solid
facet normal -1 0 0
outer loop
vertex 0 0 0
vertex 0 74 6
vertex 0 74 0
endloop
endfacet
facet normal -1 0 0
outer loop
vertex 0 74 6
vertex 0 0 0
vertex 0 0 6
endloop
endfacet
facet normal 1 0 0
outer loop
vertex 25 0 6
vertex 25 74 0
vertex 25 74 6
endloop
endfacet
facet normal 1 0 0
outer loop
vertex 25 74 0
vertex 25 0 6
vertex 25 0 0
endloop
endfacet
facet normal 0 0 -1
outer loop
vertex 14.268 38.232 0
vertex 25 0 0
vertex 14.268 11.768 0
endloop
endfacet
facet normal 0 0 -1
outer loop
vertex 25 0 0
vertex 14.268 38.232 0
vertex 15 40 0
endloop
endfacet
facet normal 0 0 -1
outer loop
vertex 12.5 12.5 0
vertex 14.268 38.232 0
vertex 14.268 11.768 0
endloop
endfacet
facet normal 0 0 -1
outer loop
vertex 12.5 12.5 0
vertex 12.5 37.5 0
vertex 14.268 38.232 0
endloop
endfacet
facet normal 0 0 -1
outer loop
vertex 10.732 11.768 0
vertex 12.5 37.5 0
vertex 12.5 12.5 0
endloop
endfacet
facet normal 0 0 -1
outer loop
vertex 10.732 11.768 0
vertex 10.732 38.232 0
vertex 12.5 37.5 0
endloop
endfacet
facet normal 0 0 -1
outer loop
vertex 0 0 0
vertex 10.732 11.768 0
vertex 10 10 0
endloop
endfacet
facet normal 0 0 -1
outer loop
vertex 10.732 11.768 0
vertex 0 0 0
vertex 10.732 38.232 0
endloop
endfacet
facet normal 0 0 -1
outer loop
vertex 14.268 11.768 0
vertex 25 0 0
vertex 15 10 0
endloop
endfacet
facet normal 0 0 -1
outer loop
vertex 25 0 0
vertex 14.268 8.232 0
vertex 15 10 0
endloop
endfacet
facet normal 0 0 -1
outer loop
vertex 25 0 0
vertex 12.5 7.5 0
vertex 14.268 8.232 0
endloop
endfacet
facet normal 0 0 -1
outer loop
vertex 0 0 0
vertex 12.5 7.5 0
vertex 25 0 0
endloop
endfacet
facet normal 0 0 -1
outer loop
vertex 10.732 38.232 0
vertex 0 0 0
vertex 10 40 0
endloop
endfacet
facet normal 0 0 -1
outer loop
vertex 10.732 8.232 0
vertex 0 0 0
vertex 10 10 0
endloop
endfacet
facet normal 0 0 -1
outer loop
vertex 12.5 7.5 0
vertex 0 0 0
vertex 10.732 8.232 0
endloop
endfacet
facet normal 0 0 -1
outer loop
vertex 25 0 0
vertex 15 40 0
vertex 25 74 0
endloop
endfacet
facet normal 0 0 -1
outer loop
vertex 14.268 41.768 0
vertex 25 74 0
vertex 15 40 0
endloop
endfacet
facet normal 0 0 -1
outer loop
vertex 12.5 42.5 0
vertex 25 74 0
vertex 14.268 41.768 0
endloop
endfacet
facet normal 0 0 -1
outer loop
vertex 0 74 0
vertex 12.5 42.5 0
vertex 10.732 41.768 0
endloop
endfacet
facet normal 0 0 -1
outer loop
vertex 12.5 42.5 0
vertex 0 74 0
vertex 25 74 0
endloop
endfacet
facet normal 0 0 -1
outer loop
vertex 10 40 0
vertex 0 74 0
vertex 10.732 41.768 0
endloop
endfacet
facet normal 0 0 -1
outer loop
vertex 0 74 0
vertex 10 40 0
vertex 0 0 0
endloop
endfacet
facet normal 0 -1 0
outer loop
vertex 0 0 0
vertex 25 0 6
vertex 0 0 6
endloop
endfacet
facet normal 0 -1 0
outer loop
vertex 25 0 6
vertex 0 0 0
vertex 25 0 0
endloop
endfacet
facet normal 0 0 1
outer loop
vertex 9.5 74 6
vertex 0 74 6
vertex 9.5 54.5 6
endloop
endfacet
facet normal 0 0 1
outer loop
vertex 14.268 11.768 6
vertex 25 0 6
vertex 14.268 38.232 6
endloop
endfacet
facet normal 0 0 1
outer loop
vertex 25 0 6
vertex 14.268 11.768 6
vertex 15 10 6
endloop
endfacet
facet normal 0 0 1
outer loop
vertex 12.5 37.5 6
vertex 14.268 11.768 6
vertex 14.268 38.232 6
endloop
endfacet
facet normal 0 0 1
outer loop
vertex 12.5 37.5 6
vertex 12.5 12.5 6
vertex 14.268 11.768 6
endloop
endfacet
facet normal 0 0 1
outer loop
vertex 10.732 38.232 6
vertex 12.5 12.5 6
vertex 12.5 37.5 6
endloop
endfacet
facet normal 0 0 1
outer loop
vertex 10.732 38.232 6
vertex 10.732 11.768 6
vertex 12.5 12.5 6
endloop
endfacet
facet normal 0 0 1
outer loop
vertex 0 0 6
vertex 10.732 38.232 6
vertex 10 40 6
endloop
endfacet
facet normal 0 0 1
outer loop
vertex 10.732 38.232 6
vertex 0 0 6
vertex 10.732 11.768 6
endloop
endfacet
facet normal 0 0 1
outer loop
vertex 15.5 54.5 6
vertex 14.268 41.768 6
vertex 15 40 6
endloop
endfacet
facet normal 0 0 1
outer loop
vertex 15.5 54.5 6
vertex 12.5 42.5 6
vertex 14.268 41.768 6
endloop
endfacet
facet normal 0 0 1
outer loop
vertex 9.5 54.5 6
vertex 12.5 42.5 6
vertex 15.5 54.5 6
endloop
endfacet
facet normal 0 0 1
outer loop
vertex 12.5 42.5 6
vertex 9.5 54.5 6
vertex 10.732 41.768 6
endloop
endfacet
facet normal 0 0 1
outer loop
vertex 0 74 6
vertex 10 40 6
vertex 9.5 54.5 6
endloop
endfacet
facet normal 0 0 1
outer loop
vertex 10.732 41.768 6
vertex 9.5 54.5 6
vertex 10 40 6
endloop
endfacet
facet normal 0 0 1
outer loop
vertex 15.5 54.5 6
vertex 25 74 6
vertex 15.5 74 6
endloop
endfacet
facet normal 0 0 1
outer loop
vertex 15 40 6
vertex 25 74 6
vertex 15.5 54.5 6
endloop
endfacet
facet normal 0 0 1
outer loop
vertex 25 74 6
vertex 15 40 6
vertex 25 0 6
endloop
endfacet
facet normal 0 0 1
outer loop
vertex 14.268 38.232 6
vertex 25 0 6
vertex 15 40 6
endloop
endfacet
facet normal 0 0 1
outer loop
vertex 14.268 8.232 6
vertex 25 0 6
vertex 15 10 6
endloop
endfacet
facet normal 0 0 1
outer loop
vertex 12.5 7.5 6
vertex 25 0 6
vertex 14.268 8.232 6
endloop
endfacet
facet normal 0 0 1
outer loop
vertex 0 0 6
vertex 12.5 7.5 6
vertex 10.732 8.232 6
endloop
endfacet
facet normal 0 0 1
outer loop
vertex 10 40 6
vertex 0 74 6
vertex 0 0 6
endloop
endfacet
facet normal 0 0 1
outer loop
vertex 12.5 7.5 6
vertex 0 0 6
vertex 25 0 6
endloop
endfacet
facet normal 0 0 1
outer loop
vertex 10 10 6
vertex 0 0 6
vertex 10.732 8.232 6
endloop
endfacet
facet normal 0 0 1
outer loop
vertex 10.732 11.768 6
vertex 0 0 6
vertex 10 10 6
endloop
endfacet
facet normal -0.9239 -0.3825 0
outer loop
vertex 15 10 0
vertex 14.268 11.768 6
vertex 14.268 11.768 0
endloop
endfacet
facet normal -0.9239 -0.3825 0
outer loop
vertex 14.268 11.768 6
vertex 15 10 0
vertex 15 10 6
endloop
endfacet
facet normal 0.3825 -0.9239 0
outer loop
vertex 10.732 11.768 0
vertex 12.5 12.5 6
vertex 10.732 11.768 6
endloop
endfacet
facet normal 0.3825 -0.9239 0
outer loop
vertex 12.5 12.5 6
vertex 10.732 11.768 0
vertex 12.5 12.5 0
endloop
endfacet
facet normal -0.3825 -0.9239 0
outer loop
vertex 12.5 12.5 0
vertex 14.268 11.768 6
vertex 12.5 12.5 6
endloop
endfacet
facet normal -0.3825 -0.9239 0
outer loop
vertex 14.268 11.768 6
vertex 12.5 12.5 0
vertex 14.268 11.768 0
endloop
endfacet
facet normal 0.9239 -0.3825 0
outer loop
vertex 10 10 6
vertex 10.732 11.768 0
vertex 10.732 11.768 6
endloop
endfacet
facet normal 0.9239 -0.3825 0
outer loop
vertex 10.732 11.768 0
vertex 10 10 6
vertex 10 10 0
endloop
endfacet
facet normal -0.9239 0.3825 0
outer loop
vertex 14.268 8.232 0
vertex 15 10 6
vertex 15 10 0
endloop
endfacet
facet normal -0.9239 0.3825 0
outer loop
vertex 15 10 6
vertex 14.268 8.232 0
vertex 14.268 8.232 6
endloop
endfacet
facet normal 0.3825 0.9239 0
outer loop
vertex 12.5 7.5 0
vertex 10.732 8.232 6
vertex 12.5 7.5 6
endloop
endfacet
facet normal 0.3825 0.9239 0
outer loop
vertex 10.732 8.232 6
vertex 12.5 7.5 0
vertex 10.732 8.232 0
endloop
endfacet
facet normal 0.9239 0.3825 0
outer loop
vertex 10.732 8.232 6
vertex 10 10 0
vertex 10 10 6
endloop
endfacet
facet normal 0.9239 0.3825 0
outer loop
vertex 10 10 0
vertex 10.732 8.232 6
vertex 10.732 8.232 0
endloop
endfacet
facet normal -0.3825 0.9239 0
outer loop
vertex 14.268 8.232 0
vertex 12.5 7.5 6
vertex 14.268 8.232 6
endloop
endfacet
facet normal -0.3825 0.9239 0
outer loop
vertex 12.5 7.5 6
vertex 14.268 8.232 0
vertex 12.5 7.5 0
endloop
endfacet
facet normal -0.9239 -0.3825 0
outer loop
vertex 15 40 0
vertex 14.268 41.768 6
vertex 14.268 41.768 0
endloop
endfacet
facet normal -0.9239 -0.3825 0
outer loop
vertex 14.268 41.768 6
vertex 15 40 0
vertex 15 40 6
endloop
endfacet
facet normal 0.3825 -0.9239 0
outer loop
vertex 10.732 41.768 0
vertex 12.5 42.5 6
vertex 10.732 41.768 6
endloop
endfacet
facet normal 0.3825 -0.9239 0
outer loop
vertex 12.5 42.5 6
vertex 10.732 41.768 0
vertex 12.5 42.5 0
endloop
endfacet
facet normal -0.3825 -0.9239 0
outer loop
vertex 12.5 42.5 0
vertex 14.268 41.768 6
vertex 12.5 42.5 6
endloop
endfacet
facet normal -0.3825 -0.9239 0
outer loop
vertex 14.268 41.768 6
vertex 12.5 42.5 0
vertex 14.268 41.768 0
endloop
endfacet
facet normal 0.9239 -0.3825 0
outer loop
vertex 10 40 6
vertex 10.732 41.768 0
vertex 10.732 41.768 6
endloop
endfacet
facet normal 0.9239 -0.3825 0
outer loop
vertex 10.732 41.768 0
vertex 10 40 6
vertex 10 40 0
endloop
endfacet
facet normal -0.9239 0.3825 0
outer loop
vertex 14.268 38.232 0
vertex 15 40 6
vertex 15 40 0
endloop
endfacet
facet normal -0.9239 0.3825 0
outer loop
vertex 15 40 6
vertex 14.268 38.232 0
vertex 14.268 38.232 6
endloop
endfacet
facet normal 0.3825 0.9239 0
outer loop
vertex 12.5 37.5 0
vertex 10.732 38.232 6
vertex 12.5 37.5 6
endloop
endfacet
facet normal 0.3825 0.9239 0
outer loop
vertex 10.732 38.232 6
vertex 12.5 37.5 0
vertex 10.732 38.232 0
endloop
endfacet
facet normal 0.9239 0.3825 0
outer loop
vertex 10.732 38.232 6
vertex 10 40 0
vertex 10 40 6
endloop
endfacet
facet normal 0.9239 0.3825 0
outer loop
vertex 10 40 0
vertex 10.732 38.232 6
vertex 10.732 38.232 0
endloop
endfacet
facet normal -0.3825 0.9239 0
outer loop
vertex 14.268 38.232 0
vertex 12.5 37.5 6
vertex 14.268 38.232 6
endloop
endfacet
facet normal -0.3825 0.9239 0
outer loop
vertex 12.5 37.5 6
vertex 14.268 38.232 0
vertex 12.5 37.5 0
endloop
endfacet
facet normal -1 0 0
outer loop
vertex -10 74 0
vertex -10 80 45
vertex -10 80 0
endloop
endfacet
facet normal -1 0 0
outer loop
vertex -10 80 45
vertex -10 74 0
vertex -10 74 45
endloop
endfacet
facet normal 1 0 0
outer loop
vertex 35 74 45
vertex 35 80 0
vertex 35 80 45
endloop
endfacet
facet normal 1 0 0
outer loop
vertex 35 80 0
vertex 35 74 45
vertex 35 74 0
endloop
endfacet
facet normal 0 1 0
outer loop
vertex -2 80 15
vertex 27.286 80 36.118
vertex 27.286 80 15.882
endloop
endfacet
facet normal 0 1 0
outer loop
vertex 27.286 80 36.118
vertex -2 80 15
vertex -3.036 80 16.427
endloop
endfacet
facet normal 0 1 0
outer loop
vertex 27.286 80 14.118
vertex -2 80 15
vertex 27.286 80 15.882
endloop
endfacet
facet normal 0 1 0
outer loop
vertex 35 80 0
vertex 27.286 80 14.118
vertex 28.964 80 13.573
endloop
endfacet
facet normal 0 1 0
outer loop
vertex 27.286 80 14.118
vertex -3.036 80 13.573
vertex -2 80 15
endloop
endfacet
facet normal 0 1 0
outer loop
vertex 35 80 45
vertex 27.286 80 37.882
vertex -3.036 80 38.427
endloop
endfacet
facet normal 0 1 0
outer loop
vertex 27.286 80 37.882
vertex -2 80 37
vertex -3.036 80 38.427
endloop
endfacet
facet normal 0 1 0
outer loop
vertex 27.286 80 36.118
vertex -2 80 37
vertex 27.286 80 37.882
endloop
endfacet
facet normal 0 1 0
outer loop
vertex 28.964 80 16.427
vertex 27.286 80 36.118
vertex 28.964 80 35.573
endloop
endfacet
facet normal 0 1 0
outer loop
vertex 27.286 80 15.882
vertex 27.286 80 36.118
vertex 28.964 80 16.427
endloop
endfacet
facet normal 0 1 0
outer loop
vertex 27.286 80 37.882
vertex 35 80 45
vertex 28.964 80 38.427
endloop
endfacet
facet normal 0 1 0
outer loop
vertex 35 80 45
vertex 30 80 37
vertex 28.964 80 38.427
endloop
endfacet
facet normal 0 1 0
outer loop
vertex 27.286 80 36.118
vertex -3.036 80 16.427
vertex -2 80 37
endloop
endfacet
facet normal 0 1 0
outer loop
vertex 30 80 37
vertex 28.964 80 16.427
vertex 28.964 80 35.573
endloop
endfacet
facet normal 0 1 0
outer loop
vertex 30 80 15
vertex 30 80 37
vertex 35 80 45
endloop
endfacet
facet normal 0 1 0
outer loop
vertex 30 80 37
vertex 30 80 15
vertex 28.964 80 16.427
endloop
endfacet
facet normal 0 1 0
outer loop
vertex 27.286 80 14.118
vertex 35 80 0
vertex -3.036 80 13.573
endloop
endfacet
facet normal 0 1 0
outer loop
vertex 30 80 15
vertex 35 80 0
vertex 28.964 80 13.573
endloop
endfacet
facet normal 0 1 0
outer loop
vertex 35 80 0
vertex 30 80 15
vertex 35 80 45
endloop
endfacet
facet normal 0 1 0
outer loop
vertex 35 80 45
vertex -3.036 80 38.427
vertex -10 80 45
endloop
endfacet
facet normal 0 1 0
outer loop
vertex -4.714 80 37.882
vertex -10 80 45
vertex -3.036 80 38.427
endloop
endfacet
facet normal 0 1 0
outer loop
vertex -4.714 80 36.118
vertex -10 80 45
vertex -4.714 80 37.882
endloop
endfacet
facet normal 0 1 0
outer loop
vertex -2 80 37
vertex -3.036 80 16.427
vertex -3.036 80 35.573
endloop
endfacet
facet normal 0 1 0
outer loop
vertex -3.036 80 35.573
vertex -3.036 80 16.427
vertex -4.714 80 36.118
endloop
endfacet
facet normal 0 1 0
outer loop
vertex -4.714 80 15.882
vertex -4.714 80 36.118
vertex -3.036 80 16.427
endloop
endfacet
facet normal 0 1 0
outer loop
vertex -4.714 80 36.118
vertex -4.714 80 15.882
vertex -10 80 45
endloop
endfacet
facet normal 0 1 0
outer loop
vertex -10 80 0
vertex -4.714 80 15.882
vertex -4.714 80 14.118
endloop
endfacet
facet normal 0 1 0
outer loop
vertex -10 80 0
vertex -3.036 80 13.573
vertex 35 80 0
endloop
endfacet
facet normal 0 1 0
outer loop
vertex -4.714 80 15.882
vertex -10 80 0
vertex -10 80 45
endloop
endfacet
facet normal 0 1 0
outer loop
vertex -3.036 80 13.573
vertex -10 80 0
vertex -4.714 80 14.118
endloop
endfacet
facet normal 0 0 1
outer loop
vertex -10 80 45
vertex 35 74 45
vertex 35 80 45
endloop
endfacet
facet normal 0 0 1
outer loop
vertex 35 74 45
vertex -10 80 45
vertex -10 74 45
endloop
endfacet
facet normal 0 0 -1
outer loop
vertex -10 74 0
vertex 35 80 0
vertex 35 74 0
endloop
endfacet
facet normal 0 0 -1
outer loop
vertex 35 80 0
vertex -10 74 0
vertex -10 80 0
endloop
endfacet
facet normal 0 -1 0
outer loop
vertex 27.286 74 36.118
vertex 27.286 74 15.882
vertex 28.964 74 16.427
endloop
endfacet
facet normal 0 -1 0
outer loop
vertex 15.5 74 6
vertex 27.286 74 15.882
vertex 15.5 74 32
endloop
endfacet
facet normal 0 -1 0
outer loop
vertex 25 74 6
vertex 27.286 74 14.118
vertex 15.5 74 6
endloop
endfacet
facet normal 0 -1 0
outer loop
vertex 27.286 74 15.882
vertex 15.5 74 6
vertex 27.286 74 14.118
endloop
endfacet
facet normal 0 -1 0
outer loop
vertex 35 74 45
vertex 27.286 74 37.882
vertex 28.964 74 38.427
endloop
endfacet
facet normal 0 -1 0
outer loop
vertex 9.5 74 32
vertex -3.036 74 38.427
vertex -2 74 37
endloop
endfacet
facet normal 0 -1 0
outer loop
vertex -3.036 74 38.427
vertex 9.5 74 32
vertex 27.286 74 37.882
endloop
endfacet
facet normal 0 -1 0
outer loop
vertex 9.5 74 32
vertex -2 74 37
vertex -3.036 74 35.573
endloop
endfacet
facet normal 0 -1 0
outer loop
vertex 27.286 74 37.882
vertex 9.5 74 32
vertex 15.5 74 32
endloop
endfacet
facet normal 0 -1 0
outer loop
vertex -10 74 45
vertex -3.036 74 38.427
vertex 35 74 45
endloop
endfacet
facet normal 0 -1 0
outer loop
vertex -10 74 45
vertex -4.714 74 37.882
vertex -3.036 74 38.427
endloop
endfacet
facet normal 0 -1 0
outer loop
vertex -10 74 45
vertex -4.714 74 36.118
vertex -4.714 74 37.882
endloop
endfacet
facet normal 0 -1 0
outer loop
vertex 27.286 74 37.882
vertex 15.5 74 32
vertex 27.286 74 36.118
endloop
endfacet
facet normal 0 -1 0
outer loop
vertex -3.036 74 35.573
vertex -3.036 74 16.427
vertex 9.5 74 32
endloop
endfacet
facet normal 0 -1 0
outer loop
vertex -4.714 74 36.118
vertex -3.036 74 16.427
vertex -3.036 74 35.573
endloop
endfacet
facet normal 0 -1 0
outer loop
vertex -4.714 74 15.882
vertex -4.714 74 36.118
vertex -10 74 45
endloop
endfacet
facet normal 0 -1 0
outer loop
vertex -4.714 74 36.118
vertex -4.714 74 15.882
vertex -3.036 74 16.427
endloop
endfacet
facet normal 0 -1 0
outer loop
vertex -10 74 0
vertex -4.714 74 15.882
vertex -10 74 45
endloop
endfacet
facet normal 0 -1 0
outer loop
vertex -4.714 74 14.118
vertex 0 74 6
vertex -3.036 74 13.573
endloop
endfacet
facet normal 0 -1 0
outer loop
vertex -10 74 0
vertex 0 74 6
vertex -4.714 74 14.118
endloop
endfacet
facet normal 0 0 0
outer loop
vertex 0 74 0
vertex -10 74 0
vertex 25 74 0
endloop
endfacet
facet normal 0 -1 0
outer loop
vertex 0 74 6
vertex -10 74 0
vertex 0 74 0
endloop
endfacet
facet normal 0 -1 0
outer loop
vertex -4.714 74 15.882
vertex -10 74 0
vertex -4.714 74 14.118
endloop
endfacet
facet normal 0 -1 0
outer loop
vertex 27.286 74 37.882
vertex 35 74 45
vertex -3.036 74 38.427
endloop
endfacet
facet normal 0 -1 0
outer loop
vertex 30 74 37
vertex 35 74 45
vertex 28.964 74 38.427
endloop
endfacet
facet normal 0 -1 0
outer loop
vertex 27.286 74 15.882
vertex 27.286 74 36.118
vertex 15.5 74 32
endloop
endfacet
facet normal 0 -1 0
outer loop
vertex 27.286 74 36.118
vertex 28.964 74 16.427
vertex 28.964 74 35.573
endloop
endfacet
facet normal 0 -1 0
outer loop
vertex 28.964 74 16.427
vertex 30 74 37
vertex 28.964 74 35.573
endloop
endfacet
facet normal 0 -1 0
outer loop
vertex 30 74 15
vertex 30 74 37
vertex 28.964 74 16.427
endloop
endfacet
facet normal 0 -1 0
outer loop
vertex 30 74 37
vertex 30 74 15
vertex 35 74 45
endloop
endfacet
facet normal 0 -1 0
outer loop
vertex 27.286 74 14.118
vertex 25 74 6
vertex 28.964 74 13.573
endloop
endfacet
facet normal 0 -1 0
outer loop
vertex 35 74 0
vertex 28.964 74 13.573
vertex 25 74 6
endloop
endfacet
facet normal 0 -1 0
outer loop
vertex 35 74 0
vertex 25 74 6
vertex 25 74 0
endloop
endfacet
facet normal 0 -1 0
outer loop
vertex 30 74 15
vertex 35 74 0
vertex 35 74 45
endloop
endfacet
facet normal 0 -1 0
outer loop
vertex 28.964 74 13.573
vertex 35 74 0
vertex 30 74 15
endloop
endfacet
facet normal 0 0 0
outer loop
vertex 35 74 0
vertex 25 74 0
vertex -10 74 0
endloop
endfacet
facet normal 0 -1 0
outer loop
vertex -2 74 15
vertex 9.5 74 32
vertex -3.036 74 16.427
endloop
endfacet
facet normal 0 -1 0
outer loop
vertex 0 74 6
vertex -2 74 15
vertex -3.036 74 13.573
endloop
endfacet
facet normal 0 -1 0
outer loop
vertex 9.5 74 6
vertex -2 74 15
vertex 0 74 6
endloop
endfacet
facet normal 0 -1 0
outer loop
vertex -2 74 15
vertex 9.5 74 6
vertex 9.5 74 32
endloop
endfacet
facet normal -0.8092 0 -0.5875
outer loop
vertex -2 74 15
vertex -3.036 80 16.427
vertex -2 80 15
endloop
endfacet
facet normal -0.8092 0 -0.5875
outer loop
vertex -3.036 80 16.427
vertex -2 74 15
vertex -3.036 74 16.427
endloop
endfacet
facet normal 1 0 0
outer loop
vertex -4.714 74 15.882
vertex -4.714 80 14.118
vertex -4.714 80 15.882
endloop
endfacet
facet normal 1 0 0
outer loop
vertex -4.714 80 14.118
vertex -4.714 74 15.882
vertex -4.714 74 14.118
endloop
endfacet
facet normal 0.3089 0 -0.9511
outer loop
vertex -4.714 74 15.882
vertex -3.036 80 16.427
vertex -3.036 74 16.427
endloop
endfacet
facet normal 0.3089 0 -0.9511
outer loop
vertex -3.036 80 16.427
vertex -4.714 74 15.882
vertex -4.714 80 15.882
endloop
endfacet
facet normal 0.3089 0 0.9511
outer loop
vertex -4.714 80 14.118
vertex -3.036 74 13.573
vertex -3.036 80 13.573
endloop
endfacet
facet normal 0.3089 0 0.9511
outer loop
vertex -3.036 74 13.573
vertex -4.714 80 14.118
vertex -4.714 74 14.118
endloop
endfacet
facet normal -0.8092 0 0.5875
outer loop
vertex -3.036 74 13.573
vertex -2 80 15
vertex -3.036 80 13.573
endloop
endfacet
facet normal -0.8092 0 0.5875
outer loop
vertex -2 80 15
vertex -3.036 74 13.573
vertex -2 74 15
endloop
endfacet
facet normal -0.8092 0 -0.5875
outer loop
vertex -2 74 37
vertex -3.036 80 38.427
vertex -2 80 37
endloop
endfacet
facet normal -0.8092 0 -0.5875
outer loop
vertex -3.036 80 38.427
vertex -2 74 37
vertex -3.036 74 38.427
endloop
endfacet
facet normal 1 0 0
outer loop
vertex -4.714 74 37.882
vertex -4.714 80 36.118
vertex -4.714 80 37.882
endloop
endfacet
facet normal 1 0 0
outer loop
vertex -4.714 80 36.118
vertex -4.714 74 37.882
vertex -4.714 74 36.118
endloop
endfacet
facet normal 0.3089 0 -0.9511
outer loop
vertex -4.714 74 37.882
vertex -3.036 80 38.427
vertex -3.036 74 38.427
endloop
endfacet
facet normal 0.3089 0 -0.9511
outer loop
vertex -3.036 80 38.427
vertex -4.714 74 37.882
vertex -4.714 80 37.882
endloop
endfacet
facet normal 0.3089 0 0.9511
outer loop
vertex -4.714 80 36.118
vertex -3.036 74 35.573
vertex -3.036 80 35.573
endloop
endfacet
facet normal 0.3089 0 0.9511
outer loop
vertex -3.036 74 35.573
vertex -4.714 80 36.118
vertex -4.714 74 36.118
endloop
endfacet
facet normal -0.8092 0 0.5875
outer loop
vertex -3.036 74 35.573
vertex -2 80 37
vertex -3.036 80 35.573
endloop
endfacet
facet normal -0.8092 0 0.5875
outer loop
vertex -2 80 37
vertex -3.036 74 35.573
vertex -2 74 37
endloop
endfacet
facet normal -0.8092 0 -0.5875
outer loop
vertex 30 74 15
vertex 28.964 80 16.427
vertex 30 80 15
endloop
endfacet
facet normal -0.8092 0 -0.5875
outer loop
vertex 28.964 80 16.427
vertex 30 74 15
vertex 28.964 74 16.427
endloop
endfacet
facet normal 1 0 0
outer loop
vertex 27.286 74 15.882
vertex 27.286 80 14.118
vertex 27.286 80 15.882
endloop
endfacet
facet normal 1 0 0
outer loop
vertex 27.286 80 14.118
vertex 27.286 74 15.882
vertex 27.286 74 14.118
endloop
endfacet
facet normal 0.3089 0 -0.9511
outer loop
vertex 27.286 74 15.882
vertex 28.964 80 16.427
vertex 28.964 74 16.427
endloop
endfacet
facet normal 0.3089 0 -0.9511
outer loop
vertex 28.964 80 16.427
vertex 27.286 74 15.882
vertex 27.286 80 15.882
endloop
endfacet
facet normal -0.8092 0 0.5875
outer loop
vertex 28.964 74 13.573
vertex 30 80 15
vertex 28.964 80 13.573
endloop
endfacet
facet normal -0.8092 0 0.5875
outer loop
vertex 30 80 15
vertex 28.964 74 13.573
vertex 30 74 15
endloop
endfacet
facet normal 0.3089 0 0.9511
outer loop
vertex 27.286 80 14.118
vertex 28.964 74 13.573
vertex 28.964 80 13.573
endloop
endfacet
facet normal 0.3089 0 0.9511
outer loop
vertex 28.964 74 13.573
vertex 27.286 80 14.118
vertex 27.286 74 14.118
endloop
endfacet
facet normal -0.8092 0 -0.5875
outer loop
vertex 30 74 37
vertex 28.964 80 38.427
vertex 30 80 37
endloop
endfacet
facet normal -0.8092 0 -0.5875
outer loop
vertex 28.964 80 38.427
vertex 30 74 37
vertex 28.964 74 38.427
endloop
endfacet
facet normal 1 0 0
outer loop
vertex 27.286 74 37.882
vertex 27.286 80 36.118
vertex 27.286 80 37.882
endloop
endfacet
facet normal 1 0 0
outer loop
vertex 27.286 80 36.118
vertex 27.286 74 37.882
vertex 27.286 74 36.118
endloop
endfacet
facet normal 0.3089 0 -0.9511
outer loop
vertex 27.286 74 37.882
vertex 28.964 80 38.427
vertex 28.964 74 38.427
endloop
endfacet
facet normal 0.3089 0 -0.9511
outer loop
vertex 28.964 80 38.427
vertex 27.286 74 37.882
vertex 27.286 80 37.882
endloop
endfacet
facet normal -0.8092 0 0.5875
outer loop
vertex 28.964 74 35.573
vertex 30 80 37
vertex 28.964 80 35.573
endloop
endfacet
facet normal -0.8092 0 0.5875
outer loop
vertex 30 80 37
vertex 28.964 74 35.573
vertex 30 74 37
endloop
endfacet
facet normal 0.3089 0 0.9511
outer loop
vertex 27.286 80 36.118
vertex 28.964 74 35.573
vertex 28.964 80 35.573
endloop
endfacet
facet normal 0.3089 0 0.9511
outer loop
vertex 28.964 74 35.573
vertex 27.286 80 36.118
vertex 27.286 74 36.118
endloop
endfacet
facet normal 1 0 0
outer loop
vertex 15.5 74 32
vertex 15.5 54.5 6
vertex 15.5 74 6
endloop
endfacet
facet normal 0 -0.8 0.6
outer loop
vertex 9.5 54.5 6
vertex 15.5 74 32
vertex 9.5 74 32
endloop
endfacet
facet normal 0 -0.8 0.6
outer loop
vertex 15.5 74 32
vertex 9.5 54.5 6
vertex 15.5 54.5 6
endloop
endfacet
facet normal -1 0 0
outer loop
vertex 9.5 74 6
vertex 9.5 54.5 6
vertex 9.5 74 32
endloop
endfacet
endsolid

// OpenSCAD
width_in_millimeter = 25;
length_in_millimeter = 80;
bracket_height_in_millimeter = 6.0;
screw_hole_diameter_in_millimeter = 5.3;


/*[hidden]*/
w = width_in_millimeter;
l = length_in_millimeter;
bracket_h = bracket_height_in_millimeter;
hole_d = screw_hole_diameter_in_millimeter;

 // Program Section //
//-----------------//

short_I_shape();

 // Module Section //
//----------------//


module short_I_shape() {
    color("YellowGreen") 
    {
        difference() 
        {
            linear_extrude(height = bracket_h)
            {
                polygon( points = [[0, 0], [0, l], [w, l], [w, 0]]);
            }
            
            translate([w/2, 10, 0])
                hole_shape(5);
            
            translate([w/2, 40, 0])
                hole_shape(5);
        }
        
        rotate ([90,0,0])
        {
            translate([0, -l, -l])
            {
                difference()
                {
                    linear_extrude(height = bracket_h)
                    {
                        polygon( points = [[-10, l], [-10, l+45], [w+10, l+45], [w+10, l]]);
                    }
                    
                   translate([w/2 - 16, l+15, 0])
                        hole_shape(3);
                    
                    translate([w/2 - 16, l+15+22, 0])
                        hole_shape(3);
                    
                    translate([w/2+16, l+15, 0])
                        hole_shape(3);
                    
                    translate([w/2+16, l+15+22, 0])
                        hole_shape(3);
                }
            }
        }
    }
    
    rotate ([0,-90,0])
    {
        translate([0, 0, -w/2 - bracket_h/2])
        {
            linear_extrude(height = bracket_h)
            {
                polygon( points = [[0, 50], [40, l], [0, l]]);
            }
        }
    }
}

module hole_shape(hole_d) {
    translate([0, 0, -1]) {
        cylinder(d = hole_d, h = bracket_h + 3);
    }
}
